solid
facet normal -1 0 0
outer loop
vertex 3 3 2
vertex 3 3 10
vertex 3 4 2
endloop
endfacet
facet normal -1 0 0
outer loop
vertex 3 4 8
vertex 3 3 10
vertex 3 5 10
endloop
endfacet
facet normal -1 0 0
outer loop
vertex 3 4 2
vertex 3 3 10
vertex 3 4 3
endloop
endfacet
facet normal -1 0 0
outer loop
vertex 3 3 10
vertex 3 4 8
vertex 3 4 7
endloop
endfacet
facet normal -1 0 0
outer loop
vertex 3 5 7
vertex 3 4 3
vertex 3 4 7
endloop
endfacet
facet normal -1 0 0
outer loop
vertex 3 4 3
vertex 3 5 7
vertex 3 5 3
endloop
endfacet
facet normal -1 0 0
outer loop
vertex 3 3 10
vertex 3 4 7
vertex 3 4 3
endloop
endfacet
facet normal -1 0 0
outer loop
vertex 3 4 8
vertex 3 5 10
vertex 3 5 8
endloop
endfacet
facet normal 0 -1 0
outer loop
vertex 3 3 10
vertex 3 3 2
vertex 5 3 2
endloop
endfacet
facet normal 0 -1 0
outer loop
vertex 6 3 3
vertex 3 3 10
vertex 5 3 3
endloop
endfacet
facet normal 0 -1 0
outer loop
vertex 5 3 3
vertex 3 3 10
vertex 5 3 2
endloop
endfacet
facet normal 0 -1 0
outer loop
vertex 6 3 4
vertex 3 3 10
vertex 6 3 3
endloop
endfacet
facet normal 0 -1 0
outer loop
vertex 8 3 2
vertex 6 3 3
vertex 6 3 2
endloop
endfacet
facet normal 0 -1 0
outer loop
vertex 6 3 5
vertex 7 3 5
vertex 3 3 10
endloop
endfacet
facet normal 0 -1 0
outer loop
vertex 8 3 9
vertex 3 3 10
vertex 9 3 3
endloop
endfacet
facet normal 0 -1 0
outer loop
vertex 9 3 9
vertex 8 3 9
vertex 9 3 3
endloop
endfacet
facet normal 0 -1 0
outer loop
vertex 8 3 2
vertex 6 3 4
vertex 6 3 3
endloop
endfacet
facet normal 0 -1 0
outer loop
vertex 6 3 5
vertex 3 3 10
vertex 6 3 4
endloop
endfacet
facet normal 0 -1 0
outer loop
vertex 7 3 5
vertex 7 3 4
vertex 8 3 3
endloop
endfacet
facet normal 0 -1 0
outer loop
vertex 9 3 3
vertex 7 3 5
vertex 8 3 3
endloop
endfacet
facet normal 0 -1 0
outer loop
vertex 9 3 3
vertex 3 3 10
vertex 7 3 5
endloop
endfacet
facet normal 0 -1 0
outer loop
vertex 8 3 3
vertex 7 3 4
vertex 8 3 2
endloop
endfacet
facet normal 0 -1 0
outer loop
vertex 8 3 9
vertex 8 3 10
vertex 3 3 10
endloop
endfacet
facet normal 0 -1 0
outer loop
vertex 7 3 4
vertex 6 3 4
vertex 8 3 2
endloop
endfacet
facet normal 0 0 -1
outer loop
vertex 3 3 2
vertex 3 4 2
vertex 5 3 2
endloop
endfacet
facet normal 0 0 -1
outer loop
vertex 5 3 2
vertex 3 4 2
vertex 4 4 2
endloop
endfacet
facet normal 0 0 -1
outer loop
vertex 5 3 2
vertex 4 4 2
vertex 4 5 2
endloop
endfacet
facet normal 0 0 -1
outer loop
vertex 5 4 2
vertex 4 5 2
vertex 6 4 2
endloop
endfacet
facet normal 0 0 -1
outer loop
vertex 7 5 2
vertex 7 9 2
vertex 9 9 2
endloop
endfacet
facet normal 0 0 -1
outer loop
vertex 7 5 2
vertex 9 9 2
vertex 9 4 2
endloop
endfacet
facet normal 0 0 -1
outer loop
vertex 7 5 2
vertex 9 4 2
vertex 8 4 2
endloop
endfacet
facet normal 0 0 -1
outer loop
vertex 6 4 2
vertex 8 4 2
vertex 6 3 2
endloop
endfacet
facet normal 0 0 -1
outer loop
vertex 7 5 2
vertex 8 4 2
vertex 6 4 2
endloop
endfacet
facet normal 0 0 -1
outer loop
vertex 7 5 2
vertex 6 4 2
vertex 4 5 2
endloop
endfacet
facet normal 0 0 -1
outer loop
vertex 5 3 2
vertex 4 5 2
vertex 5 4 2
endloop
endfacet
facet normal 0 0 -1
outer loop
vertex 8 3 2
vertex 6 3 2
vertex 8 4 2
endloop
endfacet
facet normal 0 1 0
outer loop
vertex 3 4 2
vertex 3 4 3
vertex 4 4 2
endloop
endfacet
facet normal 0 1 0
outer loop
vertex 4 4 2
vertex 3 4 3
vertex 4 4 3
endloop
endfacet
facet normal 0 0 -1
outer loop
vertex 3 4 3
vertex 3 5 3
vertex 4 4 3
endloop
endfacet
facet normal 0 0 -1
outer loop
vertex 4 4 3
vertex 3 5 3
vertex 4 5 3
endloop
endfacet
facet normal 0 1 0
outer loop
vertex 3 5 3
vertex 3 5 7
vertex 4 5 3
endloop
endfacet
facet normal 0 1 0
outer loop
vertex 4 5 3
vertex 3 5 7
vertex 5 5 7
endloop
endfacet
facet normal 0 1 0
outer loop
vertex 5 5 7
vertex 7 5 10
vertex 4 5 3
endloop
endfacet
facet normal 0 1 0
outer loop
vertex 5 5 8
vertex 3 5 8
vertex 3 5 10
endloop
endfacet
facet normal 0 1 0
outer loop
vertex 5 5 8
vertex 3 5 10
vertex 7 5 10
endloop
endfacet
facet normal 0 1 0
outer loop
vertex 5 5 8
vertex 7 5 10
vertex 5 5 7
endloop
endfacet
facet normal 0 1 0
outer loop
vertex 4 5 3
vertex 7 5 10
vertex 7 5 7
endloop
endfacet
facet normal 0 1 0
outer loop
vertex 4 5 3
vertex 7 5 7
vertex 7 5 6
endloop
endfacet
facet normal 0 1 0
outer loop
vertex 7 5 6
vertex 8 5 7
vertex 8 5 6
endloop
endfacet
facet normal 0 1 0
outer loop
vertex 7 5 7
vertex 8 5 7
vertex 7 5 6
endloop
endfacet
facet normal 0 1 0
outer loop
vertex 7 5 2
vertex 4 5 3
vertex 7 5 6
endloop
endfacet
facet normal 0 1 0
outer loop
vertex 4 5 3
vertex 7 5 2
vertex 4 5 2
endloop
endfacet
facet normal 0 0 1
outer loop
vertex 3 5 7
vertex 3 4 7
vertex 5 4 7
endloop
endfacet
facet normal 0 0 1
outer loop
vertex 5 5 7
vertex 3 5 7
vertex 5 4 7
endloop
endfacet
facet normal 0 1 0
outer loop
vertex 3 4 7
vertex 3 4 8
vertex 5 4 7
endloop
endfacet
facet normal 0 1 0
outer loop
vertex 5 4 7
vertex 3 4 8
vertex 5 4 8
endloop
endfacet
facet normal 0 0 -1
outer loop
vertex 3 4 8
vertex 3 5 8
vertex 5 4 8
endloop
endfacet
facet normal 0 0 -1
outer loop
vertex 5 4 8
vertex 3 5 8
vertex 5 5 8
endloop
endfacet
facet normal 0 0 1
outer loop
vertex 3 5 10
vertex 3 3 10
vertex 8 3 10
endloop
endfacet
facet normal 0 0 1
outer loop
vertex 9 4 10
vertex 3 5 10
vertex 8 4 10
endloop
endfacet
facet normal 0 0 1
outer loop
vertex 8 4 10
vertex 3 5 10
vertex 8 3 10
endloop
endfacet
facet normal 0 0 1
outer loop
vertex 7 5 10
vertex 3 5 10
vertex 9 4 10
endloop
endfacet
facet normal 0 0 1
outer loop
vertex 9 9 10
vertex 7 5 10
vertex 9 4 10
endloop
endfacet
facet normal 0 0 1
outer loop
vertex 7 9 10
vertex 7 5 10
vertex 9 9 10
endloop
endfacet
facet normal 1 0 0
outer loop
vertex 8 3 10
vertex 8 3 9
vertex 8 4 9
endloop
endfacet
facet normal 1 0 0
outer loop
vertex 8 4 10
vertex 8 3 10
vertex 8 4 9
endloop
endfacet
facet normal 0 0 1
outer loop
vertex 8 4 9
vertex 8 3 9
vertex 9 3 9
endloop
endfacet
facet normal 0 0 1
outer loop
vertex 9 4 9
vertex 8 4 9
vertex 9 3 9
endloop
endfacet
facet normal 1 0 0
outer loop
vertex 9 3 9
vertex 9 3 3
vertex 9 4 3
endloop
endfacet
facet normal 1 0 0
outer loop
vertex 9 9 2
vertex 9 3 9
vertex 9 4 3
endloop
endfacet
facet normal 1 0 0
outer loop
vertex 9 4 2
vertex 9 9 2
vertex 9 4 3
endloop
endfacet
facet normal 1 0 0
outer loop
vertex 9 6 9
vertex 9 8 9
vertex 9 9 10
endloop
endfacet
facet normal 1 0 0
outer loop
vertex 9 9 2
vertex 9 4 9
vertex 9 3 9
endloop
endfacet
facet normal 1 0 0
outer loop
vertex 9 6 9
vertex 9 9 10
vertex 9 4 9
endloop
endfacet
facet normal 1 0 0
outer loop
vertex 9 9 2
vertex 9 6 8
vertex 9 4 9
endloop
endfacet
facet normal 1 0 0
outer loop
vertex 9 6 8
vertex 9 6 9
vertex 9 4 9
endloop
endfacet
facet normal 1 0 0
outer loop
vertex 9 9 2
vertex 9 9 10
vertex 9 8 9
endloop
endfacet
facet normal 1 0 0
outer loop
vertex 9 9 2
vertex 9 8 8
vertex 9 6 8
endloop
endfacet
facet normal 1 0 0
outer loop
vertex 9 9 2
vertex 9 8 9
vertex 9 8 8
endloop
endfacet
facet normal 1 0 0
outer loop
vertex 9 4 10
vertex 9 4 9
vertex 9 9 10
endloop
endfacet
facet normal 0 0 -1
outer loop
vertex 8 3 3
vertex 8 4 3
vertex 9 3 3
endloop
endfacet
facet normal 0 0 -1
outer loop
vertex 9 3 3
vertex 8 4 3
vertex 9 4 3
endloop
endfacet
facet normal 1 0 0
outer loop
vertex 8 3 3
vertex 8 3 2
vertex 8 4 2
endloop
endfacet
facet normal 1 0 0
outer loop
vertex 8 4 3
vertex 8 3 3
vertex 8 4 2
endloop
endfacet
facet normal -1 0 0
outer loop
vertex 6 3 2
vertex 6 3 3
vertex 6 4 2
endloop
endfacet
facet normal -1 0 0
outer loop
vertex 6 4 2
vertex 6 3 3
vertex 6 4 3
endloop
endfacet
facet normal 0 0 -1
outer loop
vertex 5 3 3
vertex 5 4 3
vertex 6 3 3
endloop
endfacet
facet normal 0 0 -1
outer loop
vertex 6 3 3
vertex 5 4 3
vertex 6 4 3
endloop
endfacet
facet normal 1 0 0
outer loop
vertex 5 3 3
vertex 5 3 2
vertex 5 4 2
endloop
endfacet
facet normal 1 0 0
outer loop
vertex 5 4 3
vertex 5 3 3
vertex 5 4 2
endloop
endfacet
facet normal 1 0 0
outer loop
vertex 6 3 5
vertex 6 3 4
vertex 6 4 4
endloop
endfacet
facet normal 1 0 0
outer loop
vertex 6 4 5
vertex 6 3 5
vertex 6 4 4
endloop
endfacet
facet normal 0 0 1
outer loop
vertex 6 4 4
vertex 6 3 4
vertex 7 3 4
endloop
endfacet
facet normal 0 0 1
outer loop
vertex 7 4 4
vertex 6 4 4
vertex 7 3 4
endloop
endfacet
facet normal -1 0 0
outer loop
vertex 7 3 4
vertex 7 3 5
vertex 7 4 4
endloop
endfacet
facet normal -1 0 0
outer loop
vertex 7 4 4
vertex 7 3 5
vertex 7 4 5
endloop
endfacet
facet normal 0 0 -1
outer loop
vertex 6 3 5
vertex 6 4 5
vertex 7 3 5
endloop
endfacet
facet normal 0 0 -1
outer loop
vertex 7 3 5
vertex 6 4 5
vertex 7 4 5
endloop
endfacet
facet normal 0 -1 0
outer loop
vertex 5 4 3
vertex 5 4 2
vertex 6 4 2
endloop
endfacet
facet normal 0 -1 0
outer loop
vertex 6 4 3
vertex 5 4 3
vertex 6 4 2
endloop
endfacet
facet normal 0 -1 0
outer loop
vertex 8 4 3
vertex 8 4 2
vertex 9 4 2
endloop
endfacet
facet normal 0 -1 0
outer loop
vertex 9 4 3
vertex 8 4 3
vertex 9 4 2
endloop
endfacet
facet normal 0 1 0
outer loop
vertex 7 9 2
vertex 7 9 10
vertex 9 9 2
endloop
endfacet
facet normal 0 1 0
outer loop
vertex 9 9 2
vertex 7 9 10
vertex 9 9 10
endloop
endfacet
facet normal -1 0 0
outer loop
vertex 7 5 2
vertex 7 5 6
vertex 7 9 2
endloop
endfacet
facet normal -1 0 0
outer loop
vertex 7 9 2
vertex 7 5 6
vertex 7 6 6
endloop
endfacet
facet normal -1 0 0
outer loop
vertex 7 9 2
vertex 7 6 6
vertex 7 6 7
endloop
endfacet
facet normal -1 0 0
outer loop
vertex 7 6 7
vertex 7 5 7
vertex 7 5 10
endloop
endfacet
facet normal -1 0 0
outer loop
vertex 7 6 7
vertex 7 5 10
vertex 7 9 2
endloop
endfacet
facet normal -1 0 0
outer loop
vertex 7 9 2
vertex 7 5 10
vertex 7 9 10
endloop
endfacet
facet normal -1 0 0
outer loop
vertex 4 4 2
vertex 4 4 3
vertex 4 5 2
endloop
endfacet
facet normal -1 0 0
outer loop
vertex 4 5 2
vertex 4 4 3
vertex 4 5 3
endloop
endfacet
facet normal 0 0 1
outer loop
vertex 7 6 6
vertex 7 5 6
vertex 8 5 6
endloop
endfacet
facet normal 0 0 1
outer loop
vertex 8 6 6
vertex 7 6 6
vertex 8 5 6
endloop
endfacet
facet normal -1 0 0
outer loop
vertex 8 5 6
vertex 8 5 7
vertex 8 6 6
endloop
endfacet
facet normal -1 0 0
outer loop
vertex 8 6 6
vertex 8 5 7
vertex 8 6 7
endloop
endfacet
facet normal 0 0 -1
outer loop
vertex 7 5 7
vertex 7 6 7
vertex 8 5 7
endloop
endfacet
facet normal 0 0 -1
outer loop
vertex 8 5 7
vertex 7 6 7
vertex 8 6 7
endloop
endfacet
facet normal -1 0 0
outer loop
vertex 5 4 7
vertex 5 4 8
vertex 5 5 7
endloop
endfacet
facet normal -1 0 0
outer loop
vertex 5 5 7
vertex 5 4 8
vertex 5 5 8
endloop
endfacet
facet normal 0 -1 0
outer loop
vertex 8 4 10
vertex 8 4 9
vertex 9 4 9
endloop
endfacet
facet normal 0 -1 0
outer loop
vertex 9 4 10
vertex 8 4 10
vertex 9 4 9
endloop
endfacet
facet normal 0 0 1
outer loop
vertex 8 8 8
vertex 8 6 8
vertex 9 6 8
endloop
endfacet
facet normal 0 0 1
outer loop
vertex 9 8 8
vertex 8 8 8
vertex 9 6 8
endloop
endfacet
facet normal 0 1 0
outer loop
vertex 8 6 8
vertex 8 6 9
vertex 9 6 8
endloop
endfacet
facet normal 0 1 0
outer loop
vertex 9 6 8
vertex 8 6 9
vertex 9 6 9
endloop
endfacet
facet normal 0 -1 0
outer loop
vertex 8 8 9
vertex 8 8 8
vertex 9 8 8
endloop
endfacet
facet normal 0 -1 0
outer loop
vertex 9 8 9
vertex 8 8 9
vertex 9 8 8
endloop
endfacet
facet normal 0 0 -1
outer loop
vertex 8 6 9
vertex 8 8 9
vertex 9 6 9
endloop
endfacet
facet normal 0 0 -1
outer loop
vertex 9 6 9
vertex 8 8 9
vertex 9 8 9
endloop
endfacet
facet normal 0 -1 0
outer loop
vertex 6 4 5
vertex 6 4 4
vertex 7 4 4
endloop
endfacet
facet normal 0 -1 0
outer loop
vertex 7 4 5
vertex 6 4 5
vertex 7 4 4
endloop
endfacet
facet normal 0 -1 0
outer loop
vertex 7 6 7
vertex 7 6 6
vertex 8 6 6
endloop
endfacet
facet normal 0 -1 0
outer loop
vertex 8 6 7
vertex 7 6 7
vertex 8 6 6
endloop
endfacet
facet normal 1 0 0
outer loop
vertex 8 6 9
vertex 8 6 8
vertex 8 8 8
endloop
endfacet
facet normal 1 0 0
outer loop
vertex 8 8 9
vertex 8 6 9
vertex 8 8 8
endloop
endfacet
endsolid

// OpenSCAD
// Create matrix
mr = 	[
[3,3,2],
[3,3,3],
[3,3,4],
[3,3,5],
[3,3,6],
[3,3,7],
[3,3,8],
[3,3,9],
[3,4,3],
[3,4,4],
[3,4,5],
[3,4,6],
[3,4,8],
[3,4,9],
[4,3,2],
[4,3,3],
[4,3,4],
[4,3,5],
[4,3,6],
[4,3,7],
[4,3,8],
[4,3,9],
[4,4,2],
[4,4,3],
[4,4,4],
[4,4,5],
[4,4,6],
[4,4,8],
[4,4,9],
[5,3,3],
[5,3,4],
[5,3,5],
[5,3,6],
[5,3,7],
[5,3,8],
[5,3,9],
[5,4,2],
[5,4,3],
[5,4,4],
[5,4,5],
[5,4,6],
[5,4,7],
[5,4,8],
[5,4,9],
[6,3,2],
[6,3,3],
[6,3,5],
[6,3,6],
[6,3,7],
[6,3,8],
[6,3,9],
[6,4,2],
[6,4,3],
[6,4,4],
[6,4,5],
[6,4,6],
[6,4,7],
[6,4,8],
[6,4,9],
[7,3,2],
[7,3,3],
[7,3,4],
[7,3,5],
[7,3,6],
[7,3,7],
[7,3,8],
[7,3,9],
[7,4,2],
[7,4,3],
[7,4,4],
[7,4,5],
[7,4,6],
[7,4,7],
[7,4,8],
[7,4,9],
[7,5,2],
[7,5,3],
[7,5,4],
[7,5,5],
[7,5,7],
[7,5,8],
[7,5,9],
[7,6,2],
[7,6,3],
[7,6,4],
[7,6,5],
[7,6,6],
[7,6,7],
[7,6,8],
[7,6,9],
[7,7,2],
[7,7,3],
[7,7,4],
[7,7,5],
[7,7,6],
[7,7,7],
[7,7,8],
[7,7,9],
[7,8,2],
[7,8,3],
[7,8,4],
[7,8,5],
[7,8,6],
[7,8,7],
[7,8,8],
[7,8,9],
[8,3,3],
[8,3,4],
[8,3,5],
[8,3,6],
[8,3,7],
[8,3,8],
[8,4,2],
[8,4,3],
[8,4,4],
[8,4,5],
[8,4,6],
[8,4,7],
[8,4,8],
[8,4,9],
[8,5,2],
[8,5,3],
[8,5,4],
[8,5,5],
[8,5,6],
[8,5,7],
[8,5,8],
[8,5,9],
[8,6,2],
[8,6,3],
[8,6,4],
[8,6,5],
[8,6,6],
[8,6,7],
[8,6,9],
[8,7,2],
[8,7,3],
[8,7,4],
[8,7,5],
[8,7,6],
[8,7,7],
[8,7,9],
[8,8,2],
[8,8,3],
[8,8,4],
[8,8,5],
[8,8,6],
[8,8,7],
[8,8,8],
[8,8,9],
		];
// Draw cubes
// Z-axis
for (a =[0:len(mr)-1]){
	color([1,0,0]) translate([mr[a][0], mr[a][1], mr[a][2]])cube([1,1,1]);
			
}
